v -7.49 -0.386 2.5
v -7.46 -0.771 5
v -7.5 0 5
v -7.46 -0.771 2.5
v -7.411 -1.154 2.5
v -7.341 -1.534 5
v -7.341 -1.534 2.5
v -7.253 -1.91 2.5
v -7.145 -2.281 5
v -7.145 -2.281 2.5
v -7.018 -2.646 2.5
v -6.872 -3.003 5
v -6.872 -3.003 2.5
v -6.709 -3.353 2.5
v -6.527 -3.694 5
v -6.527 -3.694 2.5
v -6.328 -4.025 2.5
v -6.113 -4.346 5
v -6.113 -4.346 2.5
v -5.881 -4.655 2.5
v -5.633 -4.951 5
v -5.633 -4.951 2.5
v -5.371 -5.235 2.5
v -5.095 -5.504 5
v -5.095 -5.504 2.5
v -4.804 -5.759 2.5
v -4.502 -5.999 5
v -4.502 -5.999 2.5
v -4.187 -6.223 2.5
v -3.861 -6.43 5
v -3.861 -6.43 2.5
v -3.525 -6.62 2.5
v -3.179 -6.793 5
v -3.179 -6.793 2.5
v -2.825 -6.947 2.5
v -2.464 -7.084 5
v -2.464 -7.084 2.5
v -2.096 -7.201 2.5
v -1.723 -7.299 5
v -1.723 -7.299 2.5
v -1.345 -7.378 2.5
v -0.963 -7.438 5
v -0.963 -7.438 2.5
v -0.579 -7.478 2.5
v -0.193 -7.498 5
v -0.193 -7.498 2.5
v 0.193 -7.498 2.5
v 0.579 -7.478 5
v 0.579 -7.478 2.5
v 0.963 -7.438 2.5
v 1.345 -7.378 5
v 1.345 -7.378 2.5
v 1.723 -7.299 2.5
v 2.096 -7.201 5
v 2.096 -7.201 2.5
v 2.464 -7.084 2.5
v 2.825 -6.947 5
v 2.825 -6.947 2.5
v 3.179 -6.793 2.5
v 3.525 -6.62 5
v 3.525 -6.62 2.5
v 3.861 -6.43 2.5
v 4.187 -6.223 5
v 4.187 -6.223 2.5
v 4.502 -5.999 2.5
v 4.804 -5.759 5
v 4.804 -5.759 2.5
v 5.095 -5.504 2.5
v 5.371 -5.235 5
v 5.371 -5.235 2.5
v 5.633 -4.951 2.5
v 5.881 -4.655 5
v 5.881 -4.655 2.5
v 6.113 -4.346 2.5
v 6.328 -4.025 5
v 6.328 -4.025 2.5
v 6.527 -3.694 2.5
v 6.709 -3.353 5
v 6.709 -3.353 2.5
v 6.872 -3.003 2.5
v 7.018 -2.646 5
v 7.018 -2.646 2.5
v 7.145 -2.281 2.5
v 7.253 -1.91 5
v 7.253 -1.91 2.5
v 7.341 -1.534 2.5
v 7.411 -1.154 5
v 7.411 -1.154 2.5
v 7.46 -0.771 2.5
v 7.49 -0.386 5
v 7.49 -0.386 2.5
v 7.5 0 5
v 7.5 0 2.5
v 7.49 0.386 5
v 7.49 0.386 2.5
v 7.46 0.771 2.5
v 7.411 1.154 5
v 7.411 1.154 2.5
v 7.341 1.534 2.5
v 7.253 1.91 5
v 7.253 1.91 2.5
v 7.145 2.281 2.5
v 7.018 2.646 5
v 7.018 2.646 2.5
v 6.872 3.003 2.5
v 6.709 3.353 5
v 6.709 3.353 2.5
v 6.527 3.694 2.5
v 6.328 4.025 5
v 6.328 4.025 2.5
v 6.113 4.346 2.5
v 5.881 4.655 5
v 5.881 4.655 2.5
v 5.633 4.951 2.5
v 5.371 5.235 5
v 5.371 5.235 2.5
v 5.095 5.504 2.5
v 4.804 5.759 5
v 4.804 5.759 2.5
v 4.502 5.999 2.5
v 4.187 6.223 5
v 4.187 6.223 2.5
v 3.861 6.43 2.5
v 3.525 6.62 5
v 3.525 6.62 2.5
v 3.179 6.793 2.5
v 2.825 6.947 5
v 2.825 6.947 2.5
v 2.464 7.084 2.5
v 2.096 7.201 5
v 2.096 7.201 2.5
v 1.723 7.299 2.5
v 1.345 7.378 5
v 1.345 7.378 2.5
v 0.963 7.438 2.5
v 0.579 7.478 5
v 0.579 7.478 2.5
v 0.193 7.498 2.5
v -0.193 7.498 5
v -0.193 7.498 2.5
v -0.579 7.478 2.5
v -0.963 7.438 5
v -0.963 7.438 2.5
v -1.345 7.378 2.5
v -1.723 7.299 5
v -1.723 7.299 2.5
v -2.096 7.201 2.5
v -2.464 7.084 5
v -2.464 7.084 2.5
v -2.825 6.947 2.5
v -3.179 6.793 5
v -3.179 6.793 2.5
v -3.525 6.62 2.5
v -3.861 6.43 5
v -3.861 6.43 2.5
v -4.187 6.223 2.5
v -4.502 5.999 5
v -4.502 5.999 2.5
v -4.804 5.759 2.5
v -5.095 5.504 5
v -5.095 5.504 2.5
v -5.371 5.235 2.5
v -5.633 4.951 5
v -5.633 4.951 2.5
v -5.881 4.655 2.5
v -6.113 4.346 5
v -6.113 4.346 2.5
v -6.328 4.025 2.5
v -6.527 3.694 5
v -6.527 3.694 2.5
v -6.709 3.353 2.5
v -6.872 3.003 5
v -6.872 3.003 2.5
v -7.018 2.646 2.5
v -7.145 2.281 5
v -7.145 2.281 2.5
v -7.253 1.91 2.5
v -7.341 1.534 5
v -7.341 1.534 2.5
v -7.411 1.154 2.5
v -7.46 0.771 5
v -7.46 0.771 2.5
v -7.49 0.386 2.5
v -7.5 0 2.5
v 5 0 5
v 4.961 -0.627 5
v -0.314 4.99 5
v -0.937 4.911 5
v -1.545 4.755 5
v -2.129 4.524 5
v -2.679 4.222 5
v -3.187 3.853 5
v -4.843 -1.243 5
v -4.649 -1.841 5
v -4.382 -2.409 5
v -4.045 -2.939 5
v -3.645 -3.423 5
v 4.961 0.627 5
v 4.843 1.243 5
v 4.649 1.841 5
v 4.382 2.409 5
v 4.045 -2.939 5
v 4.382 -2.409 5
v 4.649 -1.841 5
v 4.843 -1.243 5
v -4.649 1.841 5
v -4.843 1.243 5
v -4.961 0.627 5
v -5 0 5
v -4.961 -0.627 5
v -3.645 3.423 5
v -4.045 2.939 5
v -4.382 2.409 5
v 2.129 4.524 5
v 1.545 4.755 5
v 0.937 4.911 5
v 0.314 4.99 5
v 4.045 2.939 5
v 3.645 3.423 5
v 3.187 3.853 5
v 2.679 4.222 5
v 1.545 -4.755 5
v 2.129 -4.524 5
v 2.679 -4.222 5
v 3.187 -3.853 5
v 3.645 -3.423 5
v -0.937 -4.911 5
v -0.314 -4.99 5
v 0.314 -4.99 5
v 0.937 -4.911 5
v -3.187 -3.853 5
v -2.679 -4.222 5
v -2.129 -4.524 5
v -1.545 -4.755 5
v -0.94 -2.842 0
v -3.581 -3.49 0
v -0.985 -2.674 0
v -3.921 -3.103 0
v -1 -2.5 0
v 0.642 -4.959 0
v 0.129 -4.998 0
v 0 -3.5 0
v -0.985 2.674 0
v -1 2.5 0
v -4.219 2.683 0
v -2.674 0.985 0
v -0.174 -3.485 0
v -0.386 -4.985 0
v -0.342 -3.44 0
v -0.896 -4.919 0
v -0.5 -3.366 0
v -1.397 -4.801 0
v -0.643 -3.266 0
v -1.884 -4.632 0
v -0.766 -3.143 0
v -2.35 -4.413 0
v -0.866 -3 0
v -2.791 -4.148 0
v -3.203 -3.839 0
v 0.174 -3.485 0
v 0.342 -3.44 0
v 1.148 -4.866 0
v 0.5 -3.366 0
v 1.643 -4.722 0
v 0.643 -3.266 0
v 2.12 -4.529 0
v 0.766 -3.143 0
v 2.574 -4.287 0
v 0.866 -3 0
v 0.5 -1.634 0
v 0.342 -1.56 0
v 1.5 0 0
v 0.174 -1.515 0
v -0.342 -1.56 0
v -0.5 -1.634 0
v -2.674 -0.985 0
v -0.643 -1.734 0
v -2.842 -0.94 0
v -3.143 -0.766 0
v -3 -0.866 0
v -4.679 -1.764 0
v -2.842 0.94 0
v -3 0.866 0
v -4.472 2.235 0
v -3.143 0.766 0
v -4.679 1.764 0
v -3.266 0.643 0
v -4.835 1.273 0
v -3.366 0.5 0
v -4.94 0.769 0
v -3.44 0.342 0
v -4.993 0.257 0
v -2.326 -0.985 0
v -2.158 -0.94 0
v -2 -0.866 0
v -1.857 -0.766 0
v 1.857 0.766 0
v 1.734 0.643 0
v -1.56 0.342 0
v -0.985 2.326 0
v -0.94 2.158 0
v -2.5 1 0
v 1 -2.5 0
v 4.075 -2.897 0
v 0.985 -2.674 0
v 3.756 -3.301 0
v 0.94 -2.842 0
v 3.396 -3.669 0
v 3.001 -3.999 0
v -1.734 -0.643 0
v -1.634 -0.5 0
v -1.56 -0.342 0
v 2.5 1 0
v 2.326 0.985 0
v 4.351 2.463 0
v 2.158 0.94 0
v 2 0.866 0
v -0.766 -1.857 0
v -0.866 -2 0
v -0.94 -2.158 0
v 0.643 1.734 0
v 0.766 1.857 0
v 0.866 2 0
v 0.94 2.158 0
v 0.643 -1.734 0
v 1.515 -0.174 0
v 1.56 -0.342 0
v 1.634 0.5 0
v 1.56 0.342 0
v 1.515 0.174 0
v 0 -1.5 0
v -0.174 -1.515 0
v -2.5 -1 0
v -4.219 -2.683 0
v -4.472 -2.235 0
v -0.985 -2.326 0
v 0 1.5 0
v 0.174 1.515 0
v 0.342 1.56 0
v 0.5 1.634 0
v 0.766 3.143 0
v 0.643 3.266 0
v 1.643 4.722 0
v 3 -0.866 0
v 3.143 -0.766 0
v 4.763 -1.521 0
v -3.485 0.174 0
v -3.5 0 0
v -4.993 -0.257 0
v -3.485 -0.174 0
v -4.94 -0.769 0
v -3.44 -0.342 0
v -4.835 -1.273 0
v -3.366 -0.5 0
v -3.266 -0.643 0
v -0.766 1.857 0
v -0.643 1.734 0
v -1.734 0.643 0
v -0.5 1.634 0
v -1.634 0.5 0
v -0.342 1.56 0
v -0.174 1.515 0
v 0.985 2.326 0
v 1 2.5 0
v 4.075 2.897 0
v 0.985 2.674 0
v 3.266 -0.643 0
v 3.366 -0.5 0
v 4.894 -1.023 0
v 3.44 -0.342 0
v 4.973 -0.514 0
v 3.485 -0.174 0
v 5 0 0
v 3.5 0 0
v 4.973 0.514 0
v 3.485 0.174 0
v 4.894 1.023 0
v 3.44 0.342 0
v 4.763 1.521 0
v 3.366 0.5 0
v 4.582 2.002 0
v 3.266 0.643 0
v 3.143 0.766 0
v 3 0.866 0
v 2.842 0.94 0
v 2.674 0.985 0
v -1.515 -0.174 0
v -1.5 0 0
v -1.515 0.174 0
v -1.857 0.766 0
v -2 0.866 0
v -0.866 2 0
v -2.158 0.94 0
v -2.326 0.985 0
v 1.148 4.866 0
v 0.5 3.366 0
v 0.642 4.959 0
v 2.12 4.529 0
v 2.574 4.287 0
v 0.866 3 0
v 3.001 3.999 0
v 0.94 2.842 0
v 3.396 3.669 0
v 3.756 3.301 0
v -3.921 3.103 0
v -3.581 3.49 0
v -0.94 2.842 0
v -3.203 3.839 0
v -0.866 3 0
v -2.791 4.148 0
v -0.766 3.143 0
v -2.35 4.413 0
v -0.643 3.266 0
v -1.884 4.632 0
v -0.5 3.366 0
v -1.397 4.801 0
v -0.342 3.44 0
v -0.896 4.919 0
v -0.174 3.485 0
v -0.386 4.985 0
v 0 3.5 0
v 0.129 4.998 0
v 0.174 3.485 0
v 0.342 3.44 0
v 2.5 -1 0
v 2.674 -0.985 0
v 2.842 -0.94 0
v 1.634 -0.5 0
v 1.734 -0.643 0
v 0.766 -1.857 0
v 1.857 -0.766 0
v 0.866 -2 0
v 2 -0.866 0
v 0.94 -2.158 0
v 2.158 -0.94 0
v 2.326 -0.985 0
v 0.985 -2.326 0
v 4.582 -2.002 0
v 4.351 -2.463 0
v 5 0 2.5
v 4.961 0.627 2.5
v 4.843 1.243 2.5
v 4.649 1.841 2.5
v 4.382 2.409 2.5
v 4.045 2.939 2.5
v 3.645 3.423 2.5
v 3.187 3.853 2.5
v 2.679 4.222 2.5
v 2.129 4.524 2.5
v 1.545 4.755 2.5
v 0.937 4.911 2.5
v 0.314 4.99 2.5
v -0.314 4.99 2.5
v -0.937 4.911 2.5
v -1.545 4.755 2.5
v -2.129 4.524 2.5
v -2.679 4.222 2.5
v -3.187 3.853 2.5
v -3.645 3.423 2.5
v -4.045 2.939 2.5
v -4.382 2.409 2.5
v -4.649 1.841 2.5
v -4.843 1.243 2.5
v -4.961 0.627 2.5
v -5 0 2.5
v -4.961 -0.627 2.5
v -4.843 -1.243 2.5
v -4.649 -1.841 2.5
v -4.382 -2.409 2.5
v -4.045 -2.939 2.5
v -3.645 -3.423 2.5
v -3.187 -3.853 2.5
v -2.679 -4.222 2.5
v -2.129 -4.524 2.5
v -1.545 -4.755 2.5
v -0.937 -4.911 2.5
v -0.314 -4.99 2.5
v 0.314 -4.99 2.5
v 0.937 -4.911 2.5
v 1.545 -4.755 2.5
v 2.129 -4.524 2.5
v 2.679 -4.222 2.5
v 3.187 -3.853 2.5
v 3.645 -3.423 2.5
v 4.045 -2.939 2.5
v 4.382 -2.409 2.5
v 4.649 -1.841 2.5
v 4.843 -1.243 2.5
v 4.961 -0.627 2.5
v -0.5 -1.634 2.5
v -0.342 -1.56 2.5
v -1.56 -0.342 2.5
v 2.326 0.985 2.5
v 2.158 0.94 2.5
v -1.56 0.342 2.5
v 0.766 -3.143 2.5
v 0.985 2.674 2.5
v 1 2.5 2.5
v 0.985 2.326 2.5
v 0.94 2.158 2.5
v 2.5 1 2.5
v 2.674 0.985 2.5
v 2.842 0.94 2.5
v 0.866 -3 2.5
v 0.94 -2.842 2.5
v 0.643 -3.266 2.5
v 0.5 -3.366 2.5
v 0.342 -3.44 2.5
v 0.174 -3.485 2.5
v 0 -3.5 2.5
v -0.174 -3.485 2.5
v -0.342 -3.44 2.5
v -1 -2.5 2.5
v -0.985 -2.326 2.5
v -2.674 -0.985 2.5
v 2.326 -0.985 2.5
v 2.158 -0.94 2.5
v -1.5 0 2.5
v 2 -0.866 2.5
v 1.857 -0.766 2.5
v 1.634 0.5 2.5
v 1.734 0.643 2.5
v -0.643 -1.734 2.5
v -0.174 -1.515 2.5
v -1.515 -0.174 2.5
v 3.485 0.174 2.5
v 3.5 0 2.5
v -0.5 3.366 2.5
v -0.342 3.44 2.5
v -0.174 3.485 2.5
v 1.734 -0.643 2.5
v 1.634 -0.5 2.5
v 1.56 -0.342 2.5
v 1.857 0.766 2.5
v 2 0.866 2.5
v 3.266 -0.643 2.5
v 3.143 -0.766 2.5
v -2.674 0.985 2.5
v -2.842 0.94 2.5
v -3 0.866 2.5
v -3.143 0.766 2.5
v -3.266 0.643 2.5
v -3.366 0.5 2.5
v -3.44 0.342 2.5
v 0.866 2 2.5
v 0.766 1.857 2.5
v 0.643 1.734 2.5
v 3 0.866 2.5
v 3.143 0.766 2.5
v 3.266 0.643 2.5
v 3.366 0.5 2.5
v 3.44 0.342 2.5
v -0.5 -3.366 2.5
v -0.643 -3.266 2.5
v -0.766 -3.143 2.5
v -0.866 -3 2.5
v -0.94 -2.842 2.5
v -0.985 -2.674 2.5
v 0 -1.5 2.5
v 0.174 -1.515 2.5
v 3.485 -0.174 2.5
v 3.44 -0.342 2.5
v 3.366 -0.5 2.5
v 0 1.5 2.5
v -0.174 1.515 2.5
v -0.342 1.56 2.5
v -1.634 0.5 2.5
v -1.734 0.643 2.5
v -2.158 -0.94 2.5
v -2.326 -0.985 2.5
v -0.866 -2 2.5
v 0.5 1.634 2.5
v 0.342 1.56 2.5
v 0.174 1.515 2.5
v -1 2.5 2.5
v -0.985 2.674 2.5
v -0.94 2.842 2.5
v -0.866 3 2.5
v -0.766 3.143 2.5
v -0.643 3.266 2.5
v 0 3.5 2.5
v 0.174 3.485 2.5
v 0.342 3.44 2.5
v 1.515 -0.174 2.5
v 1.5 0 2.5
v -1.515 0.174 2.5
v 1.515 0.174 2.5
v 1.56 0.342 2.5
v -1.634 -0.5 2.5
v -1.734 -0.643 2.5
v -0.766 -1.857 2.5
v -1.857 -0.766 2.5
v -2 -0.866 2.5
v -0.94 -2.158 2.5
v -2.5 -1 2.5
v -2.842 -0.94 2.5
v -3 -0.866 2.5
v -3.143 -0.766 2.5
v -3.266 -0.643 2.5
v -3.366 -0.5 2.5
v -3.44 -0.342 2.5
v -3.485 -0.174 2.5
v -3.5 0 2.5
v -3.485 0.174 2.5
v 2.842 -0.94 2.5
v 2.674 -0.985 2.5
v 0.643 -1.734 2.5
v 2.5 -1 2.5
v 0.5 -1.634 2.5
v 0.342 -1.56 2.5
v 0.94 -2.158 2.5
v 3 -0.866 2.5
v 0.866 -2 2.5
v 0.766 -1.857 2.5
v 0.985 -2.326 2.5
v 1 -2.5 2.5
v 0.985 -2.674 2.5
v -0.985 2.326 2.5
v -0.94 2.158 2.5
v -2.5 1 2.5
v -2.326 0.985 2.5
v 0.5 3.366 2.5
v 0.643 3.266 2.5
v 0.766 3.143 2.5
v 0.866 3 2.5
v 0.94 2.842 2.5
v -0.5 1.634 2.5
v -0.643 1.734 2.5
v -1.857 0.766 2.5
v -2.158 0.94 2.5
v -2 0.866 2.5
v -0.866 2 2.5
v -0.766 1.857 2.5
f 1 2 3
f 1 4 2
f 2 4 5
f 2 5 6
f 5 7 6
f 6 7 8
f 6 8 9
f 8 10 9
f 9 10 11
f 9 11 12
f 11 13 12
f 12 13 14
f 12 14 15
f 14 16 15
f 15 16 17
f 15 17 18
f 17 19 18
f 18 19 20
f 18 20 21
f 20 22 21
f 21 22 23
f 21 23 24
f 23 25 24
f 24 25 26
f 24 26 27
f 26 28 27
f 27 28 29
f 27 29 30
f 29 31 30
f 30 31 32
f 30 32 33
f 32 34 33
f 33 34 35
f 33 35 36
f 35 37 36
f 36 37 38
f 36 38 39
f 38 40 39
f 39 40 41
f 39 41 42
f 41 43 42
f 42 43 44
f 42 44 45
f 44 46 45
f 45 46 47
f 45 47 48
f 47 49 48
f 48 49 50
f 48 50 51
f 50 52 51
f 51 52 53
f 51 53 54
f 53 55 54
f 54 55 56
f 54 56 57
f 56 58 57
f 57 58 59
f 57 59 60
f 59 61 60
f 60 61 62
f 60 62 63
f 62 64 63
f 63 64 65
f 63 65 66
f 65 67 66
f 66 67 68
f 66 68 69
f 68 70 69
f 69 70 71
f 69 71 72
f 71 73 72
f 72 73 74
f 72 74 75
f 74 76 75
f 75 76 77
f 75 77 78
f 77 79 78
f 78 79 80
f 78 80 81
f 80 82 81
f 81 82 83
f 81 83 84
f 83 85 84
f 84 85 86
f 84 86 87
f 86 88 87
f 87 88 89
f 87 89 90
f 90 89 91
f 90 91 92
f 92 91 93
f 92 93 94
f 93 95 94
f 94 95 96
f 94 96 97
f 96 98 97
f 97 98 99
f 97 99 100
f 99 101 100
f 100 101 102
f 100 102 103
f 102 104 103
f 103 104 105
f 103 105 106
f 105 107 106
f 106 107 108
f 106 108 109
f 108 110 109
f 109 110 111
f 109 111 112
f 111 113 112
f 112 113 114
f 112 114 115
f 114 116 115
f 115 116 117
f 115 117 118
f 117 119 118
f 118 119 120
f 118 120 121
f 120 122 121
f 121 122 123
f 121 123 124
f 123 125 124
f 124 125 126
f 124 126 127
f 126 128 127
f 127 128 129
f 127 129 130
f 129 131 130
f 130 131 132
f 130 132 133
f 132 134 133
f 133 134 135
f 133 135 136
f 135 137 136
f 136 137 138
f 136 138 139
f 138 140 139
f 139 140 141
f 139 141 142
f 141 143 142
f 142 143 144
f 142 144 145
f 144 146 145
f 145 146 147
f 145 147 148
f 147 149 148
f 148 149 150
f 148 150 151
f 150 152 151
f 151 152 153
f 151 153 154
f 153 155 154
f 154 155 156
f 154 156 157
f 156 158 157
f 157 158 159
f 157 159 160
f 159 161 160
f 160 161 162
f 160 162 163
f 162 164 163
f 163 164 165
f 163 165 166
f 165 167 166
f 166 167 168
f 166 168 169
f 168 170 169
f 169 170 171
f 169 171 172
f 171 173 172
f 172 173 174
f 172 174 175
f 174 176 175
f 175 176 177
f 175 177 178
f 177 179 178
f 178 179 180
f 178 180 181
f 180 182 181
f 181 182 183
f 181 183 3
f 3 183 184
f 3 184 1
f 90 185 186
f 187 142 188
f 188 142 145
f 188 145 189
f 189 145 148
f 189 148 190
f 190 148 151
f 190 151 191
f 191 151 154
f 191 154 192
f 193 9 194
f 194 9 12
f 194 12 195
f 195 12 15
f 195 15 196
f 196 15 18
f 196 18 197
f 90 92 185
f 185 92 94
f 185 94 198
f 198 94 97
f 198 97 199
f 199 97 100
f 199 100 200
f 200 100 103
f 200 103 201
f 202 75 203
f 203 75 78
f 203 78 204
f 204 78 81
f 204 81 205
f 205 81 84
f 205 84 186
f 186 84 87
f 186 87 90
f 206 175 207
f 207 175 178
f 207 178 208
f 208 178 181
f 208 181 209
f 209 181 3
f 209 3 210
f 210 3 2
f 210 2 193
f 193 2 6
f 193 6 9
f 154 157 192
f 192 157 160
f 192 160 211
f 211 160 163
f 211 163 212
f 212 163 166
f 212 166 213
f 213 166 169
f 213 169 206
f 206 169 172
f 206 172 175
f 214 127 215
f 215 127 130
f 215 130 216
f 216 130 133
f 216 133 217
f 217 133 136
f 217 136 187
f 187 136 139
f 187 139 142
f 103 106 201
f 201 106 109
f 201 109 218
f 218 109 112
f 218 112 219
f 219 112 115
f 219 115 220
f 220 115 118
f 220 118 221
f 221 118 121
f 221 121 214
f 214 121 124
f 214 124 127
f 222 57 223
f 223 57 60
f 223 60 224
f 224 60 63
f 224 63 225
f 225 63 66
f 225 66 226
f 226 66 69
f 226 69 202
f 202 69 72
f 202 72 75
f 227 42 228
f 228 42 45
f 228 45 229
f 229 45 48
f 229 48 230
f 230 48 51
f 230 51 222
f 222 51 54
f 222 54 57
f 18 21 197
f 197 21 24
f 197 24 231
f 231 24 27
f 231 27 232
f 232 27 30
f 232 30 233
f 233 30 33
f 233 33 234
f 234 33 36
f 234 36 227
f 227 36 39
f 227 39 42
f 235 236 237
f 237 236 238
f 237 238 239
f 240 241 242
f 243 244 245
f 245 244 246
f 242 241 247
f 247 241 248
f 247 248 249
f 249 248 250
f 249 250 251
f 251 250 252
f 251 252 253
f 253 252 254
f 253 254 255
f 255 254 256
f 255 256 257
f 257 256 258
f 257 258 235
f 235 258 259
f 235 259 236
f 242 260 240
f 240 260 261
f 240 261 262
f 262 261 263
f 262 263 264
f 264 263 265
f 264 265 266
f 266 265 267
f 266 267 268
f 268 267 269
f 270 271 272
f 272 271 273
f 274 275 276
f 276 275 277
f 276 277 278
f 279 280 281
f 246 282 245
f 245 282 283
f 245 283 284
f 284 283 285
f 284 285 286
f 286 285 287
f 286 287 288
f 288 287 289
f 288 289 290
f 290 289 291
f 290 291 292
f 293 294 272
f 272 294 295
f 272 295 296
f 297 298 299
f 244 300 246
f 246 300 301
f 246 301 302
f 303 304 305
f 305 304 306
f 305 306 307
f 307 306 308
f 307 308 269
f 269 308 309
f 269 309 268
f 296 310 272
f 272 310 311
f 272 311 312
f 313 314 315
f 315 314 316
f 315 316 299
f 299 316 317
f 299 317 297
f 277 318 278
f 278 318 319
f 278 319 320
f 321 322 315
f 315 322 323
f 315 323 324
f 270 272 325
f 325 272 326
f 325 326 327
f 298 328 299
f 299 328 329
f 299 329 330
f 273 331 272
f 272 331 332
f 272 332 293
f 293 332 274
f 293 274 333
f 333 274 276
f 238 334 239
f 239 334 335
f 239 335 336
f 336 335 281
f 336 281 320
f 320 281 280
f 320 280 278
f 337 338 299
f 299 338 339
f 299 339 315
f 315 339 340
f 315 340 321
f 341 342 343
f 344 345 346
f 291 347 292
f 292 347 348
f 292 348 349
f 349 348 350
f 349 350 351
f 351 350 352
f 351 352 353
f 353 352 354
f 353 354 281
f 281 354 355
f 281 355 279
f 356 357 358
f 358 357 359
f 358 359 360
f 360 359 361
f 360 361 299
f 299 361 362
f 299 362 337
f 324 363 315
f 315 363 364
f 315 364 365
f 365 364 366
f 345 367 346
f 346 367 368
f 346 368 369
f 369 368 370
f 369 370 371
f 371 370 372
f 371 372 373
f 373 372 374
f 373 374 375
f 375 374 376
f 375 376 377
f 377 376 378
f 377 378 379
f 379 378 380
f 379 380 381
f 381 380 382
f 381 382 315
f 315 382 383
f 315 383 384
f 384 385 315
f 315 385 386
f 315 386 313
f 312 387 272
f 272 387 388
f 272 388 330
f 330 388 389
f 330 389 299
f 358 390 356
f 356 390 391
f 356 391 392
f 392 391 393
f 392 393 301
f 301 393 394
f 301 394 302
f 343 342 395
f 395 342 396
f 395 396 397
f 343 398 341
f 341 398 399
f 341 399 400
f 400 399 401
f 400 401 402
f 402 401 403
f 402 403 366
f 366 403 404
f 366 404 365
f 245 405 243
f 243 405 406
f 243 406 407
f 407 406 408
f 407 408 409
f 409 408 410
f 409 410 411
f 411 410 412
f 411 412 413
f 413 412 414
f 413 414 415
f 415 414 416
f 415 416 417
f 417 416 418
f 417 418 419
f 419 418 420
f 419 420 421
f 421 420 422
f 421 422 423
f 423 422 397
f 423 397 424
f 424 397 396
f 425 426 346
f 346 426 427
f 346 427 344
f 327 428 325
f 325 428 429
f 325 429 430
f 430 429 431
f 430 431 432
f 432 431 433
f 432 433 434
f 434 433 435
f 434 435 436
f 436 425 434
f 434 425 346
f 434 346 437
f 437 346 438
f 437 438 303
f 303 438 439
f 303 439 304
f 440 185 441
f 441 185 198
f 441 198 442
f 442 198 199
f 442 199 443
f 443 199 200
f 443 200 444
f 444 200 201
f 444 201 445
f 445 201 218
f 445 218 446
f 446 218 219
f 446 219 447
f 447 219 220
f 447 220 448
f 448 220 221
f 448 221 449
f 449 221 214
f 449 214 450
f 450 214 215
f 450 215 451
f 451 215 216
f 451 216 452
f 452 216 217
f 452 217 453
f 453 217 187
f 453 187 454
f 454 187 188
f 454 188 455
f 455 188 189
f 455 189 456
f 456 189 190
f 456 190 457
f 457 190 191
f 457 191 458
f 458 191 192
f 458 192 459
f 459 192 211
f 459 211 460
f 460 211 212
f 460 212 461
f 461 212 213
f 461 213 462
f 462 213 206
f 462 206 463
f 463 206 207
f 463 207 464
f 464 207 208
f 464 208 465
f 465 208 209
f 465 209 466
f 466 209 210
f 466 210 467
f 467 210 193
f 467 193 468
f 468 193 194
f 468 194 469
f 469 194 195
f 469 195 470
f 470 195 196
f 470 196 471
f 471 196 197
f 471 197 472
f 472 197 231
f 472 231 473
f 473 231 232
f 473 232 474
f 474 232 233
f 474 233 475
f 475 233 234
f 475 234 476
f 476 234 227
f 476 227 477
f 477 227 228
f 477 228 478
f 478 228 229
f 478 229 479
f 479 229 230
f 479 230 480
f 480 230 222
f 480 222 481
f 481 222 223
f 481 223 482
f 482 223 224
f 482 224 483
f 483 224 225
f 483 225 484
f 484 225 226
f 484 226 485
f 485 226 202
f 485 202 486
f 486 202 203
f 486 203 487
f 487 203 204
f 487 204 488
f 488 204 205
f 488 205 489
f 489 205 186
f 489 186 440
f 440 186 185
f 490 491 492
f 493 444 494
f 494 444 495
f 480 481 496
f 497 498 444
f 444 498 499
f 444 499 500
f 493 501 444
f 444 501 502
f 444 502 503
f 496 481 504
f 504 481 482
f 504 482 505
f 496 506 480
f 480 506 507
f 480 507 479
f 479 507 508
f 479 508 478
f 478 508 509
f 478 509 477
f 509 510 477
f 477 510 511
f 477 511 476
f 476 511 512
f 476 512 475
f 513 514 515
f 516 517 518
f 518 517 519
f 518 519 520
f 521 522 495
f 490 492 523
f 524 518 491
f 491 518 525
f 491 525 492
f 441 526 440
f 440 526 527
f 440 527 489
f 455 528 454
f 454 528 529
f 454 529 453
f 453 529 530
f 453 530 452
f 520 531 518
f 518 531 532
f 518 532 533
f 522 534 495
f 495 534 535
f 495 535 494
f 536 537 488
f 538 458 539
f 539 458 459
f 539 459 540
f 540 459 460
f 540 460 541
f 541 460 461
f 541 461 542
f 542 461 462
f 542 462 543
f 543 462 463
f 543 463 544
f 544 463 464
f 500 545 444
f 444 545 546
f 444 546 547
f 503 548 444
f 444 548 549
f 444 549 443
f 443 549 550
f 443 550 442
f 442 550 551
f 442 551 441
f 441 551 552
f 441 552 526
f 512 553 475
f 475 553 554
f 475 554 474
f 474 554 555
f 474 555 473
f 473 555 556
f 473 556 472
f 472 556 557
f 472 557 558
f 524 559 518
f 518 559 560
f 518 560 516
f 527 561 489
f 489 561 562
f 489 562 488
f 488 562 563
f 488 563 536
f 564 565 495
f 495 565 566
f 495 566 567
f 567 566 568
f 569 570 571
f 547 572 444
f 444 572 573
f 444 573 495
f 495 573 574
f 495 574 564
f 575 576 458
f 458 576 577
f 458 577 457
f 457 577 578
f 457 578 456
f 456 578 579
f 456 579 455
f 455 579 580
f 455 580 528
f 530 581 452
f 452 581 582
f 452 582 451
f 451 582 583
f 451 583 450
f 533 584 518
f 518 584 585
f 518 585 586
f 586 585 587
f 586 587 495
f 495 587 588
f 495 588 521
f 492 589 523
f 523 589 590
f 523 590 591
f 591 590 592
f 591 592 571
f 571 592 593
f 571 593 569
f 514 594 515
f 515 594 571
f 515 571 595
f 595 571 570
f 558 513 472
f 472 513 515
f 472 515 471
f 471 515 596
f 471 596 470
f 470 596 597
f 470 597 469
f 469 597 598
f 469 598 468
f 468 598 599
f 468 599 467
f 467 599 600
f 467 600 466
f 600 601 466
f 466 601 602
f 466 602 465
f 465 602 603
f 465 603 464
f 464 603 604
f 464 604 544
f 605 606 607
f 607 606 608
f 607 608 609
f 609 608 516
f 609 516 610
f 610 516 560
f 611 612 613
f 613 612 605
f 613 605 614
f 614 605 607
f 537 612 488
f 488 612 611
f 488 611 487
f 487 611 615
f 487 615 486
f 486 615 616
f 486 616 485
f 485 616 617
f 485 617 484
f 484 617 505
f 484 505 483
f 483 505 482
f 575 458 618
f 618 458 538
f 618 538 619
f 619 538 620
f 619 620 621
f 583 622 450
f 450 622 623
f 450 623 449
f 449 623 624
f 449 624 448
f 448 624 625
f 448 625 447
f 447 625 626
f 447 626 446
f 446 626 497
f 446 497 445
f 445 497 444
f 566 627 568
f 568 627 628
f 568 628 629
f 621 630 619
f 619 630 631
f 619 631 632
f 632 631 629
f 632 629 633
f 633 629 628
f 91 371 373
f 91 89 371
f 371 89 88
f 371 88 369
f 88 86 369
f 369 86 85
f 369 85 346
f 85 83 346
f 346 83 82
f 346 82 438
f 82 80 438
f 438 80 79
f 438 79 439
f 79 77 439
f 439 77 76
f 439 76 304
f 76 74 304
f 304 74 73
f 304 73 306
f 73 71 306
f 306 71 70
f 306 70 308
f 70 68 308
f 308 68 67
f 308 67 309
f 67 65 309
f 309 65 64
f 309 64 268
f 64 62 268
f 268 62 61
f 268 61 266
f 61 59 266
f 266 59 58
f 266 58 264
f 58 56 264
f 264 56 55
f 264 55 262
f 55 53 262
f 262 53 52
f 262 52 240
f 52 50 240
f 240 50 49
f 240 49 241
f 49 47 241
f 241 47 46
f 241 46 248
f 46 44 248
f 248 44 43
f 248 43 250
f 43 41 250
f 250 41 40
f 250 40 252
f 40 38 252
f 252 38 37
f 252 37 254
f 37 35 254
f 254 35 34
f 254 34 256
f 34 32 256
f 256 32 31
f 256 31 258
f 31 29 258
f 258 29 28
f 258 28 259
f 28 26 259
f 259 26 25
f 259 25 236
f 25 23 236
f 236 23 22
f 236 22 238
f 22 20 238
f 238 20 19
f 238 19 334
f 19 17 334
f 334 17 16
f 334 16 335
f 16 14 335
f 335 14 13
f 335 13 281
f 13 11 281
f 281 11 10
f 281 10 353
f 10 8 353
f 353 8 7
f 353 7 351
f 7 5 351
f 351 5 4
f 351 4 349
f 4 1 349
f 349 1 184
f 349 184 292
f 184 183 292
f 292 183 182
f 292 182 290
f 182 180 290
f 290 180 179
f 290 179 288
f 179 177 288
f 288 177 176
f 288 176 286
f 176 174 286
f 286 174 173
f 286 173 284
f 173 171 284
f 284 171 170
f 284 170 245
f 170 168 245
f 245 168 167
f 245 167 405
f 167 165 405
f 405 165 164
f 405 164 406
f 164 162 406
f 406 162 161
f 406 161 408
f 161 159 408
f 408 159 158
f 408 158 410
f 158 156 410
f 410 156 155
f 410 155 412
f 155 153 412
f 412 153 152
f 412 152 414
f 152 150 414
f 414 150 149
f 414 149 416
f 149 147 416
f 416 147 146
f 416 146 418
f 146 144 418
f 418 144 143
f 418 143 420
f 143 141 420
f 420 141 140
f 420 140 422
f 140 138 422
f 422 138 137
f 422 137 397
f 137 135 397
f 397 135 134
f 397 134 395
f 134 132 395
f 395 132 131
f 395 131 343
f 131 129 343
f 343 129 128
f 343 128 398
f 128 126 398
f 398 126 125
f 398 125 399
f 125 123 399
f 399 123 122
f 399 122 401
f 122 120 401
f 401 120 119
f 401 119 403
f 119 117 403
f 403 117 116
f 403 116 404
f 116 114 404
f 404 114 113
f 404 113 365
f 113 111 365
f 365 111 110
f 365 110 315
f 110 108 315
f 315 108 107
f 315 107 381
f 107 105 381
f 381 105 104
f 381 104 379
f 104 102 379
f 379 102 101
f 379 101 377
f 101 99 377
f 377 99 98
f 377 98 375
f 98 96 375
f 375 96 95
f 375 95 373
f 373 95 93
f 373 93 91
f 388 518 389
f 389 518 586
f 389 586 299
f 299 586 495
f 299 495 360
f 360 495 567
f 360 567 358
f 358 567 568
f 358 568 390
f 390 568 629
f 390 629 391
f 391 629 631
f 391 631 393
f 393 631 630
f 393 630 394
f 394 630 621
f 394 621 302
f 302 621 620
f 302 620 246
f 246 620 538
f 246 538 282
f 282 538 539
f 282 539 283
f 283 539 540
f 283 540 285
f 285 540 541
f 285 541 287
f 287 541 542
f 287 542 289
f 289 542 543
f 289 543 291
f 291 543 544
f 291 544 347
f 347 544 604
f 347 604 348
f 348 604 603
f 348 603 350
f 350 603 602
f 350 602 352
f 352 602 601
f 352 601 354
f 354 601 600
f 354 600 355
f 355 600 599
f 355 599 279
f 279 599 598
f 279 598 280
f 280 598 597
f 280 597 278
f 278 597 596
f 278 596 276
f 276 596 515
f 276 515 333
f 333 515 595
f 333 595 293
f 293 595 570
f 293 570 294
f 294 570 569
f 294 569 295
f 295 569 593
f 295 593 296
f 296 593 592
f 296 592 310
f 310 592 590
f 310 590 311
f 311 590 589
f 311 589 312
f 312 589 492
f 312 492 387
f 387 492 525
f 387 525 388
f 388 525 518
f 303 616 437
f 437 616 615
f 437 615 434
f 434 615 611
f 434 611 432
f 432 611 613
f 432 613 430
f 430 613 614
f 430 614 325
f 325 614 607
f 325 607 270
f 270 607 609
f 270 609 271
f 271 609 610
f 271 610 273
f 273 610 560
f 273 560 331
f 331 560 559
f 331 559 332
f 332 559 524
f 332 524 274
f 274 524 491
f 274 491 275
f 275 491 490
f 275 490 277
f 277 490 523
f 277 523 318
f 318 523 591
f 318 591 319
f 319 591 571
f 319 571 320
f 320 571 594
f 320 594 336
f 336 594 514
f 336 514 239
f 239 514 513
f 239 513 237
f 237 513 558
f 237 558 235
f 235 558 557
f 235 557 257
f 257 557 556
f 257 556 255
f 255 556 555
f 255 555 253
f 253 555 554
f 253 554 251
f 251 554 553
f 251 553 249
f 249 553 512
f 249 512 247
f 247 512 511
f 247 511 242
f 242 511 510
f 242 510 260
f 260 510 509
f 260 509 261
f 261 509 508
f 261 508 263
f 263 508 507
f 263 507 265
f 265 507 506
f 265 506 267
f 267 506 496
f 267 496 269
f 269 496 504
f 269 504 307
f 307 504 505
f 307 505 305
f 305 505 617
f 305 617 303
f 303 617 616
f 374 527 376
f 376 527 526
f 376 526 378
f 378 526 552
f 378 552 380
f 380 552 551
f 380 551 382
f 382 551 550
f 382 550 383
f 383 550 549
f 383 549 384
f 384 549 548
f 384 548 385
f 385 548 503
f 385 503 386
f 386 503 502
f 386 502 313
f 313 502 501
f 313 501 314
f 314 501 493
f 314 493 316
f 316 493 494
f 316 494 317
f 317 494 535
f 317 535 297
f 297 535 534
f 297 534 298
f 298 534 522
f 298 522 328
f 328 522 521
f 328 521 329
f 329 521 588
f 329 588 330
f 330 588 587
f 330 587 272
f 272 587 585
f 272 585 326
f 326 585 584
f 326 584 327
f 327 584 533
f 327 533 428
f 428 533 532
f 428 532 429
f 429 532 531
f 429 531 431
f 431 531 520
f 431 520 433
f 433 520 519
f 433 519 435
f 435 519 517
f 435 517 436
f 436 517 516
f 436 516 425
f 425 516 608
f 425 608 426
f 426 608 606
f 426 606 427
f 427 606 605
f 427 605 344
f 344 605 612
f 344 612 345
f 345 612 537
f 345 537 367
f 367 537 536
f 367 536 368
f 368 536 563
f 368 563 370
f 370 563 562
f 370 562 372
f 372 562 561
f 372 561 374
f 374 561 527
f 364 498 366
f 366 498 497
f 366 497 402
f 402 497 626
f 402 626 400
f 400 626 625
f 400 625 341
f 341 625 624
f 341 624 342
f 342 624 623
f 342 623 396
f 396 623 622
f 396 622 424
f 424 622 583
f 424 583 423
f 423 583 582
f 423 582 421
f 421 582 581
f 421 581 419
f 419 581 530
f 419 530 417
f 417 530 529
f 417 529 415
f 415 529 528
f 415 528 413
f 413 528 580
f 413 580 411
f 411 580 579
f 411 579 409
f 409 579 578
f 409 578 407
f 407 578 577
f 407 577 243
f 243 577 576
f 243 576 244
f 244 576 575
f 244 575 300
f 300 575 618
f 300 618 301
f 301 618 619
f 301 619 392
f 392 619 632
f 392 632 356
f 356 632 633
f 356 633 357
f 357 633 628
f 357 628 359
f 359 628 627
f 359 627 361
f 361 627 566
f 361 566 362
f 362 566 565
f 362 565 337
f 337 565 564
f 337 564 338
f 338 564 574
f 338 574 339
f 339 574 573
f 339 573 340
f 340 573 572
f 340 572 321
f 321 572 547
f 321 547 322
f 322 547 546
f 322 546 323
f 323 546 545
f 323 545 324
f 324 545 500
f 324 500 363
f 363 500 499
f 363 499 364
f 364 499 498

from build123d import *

# Parameters (mm, degrees)
SKETCH1_R           = 7.5
BOSS_EXTRUDE1_DEPTH = 5
SKETCH2_R           = 5
CUT_EXTRUDE1_DEPTH  = 2.5
CHAMFER1_SIZE       = 2.5
SKETCH3_R           = 1
CUT_EXTRUDE2_DEPTH  = 2.5


with BuildPart() as part:
    # Sketch1 → Boss-Extrude1 (new body)
    with BuildSketch(Plane.XY):
        Circle(SKETCH1_R)
    extrude(amount=BOSS_EXTRUDE1_DEPTH)

    # Sketch2 → Cut-Extrude1 (cut)
    with BuildSketch(Plane.XY.offset(5)):
        Circle(SKETCH2_R)
    extrude(amount=-CUT_EXTRUDE1_DEPTH, mode=Mode.SUBTRACT)

    # Chamfer1
    chamfer1_edges = [part.edges().sort_by_distance(p)[0] for p in [
        (-7.5, 0, 0),
    ]]
    chamfer(chamfer1_edges, length=CHAMFER1_SIZE)

    # Sketch3 → Cut-Extrude2 (cut)
    with BuildSketch(Plane.XY.offset(2.5)):
        with Locations((0, 2.5)):
            Circle(SKETCH3_R)
        with Locations((2.5, 0)):
            Circle(SKETCH3_R)
        with Locations((0, -2.5)):
            Circle(SKETCH3_R)
        with Locations((-2.5, 0)):
            Circle(SKETCH3_R)
    extrude(amount=-CUT_EXTRUDE2_DEPTH, mode=Mode.SUBTRACT)


solid = part.part
